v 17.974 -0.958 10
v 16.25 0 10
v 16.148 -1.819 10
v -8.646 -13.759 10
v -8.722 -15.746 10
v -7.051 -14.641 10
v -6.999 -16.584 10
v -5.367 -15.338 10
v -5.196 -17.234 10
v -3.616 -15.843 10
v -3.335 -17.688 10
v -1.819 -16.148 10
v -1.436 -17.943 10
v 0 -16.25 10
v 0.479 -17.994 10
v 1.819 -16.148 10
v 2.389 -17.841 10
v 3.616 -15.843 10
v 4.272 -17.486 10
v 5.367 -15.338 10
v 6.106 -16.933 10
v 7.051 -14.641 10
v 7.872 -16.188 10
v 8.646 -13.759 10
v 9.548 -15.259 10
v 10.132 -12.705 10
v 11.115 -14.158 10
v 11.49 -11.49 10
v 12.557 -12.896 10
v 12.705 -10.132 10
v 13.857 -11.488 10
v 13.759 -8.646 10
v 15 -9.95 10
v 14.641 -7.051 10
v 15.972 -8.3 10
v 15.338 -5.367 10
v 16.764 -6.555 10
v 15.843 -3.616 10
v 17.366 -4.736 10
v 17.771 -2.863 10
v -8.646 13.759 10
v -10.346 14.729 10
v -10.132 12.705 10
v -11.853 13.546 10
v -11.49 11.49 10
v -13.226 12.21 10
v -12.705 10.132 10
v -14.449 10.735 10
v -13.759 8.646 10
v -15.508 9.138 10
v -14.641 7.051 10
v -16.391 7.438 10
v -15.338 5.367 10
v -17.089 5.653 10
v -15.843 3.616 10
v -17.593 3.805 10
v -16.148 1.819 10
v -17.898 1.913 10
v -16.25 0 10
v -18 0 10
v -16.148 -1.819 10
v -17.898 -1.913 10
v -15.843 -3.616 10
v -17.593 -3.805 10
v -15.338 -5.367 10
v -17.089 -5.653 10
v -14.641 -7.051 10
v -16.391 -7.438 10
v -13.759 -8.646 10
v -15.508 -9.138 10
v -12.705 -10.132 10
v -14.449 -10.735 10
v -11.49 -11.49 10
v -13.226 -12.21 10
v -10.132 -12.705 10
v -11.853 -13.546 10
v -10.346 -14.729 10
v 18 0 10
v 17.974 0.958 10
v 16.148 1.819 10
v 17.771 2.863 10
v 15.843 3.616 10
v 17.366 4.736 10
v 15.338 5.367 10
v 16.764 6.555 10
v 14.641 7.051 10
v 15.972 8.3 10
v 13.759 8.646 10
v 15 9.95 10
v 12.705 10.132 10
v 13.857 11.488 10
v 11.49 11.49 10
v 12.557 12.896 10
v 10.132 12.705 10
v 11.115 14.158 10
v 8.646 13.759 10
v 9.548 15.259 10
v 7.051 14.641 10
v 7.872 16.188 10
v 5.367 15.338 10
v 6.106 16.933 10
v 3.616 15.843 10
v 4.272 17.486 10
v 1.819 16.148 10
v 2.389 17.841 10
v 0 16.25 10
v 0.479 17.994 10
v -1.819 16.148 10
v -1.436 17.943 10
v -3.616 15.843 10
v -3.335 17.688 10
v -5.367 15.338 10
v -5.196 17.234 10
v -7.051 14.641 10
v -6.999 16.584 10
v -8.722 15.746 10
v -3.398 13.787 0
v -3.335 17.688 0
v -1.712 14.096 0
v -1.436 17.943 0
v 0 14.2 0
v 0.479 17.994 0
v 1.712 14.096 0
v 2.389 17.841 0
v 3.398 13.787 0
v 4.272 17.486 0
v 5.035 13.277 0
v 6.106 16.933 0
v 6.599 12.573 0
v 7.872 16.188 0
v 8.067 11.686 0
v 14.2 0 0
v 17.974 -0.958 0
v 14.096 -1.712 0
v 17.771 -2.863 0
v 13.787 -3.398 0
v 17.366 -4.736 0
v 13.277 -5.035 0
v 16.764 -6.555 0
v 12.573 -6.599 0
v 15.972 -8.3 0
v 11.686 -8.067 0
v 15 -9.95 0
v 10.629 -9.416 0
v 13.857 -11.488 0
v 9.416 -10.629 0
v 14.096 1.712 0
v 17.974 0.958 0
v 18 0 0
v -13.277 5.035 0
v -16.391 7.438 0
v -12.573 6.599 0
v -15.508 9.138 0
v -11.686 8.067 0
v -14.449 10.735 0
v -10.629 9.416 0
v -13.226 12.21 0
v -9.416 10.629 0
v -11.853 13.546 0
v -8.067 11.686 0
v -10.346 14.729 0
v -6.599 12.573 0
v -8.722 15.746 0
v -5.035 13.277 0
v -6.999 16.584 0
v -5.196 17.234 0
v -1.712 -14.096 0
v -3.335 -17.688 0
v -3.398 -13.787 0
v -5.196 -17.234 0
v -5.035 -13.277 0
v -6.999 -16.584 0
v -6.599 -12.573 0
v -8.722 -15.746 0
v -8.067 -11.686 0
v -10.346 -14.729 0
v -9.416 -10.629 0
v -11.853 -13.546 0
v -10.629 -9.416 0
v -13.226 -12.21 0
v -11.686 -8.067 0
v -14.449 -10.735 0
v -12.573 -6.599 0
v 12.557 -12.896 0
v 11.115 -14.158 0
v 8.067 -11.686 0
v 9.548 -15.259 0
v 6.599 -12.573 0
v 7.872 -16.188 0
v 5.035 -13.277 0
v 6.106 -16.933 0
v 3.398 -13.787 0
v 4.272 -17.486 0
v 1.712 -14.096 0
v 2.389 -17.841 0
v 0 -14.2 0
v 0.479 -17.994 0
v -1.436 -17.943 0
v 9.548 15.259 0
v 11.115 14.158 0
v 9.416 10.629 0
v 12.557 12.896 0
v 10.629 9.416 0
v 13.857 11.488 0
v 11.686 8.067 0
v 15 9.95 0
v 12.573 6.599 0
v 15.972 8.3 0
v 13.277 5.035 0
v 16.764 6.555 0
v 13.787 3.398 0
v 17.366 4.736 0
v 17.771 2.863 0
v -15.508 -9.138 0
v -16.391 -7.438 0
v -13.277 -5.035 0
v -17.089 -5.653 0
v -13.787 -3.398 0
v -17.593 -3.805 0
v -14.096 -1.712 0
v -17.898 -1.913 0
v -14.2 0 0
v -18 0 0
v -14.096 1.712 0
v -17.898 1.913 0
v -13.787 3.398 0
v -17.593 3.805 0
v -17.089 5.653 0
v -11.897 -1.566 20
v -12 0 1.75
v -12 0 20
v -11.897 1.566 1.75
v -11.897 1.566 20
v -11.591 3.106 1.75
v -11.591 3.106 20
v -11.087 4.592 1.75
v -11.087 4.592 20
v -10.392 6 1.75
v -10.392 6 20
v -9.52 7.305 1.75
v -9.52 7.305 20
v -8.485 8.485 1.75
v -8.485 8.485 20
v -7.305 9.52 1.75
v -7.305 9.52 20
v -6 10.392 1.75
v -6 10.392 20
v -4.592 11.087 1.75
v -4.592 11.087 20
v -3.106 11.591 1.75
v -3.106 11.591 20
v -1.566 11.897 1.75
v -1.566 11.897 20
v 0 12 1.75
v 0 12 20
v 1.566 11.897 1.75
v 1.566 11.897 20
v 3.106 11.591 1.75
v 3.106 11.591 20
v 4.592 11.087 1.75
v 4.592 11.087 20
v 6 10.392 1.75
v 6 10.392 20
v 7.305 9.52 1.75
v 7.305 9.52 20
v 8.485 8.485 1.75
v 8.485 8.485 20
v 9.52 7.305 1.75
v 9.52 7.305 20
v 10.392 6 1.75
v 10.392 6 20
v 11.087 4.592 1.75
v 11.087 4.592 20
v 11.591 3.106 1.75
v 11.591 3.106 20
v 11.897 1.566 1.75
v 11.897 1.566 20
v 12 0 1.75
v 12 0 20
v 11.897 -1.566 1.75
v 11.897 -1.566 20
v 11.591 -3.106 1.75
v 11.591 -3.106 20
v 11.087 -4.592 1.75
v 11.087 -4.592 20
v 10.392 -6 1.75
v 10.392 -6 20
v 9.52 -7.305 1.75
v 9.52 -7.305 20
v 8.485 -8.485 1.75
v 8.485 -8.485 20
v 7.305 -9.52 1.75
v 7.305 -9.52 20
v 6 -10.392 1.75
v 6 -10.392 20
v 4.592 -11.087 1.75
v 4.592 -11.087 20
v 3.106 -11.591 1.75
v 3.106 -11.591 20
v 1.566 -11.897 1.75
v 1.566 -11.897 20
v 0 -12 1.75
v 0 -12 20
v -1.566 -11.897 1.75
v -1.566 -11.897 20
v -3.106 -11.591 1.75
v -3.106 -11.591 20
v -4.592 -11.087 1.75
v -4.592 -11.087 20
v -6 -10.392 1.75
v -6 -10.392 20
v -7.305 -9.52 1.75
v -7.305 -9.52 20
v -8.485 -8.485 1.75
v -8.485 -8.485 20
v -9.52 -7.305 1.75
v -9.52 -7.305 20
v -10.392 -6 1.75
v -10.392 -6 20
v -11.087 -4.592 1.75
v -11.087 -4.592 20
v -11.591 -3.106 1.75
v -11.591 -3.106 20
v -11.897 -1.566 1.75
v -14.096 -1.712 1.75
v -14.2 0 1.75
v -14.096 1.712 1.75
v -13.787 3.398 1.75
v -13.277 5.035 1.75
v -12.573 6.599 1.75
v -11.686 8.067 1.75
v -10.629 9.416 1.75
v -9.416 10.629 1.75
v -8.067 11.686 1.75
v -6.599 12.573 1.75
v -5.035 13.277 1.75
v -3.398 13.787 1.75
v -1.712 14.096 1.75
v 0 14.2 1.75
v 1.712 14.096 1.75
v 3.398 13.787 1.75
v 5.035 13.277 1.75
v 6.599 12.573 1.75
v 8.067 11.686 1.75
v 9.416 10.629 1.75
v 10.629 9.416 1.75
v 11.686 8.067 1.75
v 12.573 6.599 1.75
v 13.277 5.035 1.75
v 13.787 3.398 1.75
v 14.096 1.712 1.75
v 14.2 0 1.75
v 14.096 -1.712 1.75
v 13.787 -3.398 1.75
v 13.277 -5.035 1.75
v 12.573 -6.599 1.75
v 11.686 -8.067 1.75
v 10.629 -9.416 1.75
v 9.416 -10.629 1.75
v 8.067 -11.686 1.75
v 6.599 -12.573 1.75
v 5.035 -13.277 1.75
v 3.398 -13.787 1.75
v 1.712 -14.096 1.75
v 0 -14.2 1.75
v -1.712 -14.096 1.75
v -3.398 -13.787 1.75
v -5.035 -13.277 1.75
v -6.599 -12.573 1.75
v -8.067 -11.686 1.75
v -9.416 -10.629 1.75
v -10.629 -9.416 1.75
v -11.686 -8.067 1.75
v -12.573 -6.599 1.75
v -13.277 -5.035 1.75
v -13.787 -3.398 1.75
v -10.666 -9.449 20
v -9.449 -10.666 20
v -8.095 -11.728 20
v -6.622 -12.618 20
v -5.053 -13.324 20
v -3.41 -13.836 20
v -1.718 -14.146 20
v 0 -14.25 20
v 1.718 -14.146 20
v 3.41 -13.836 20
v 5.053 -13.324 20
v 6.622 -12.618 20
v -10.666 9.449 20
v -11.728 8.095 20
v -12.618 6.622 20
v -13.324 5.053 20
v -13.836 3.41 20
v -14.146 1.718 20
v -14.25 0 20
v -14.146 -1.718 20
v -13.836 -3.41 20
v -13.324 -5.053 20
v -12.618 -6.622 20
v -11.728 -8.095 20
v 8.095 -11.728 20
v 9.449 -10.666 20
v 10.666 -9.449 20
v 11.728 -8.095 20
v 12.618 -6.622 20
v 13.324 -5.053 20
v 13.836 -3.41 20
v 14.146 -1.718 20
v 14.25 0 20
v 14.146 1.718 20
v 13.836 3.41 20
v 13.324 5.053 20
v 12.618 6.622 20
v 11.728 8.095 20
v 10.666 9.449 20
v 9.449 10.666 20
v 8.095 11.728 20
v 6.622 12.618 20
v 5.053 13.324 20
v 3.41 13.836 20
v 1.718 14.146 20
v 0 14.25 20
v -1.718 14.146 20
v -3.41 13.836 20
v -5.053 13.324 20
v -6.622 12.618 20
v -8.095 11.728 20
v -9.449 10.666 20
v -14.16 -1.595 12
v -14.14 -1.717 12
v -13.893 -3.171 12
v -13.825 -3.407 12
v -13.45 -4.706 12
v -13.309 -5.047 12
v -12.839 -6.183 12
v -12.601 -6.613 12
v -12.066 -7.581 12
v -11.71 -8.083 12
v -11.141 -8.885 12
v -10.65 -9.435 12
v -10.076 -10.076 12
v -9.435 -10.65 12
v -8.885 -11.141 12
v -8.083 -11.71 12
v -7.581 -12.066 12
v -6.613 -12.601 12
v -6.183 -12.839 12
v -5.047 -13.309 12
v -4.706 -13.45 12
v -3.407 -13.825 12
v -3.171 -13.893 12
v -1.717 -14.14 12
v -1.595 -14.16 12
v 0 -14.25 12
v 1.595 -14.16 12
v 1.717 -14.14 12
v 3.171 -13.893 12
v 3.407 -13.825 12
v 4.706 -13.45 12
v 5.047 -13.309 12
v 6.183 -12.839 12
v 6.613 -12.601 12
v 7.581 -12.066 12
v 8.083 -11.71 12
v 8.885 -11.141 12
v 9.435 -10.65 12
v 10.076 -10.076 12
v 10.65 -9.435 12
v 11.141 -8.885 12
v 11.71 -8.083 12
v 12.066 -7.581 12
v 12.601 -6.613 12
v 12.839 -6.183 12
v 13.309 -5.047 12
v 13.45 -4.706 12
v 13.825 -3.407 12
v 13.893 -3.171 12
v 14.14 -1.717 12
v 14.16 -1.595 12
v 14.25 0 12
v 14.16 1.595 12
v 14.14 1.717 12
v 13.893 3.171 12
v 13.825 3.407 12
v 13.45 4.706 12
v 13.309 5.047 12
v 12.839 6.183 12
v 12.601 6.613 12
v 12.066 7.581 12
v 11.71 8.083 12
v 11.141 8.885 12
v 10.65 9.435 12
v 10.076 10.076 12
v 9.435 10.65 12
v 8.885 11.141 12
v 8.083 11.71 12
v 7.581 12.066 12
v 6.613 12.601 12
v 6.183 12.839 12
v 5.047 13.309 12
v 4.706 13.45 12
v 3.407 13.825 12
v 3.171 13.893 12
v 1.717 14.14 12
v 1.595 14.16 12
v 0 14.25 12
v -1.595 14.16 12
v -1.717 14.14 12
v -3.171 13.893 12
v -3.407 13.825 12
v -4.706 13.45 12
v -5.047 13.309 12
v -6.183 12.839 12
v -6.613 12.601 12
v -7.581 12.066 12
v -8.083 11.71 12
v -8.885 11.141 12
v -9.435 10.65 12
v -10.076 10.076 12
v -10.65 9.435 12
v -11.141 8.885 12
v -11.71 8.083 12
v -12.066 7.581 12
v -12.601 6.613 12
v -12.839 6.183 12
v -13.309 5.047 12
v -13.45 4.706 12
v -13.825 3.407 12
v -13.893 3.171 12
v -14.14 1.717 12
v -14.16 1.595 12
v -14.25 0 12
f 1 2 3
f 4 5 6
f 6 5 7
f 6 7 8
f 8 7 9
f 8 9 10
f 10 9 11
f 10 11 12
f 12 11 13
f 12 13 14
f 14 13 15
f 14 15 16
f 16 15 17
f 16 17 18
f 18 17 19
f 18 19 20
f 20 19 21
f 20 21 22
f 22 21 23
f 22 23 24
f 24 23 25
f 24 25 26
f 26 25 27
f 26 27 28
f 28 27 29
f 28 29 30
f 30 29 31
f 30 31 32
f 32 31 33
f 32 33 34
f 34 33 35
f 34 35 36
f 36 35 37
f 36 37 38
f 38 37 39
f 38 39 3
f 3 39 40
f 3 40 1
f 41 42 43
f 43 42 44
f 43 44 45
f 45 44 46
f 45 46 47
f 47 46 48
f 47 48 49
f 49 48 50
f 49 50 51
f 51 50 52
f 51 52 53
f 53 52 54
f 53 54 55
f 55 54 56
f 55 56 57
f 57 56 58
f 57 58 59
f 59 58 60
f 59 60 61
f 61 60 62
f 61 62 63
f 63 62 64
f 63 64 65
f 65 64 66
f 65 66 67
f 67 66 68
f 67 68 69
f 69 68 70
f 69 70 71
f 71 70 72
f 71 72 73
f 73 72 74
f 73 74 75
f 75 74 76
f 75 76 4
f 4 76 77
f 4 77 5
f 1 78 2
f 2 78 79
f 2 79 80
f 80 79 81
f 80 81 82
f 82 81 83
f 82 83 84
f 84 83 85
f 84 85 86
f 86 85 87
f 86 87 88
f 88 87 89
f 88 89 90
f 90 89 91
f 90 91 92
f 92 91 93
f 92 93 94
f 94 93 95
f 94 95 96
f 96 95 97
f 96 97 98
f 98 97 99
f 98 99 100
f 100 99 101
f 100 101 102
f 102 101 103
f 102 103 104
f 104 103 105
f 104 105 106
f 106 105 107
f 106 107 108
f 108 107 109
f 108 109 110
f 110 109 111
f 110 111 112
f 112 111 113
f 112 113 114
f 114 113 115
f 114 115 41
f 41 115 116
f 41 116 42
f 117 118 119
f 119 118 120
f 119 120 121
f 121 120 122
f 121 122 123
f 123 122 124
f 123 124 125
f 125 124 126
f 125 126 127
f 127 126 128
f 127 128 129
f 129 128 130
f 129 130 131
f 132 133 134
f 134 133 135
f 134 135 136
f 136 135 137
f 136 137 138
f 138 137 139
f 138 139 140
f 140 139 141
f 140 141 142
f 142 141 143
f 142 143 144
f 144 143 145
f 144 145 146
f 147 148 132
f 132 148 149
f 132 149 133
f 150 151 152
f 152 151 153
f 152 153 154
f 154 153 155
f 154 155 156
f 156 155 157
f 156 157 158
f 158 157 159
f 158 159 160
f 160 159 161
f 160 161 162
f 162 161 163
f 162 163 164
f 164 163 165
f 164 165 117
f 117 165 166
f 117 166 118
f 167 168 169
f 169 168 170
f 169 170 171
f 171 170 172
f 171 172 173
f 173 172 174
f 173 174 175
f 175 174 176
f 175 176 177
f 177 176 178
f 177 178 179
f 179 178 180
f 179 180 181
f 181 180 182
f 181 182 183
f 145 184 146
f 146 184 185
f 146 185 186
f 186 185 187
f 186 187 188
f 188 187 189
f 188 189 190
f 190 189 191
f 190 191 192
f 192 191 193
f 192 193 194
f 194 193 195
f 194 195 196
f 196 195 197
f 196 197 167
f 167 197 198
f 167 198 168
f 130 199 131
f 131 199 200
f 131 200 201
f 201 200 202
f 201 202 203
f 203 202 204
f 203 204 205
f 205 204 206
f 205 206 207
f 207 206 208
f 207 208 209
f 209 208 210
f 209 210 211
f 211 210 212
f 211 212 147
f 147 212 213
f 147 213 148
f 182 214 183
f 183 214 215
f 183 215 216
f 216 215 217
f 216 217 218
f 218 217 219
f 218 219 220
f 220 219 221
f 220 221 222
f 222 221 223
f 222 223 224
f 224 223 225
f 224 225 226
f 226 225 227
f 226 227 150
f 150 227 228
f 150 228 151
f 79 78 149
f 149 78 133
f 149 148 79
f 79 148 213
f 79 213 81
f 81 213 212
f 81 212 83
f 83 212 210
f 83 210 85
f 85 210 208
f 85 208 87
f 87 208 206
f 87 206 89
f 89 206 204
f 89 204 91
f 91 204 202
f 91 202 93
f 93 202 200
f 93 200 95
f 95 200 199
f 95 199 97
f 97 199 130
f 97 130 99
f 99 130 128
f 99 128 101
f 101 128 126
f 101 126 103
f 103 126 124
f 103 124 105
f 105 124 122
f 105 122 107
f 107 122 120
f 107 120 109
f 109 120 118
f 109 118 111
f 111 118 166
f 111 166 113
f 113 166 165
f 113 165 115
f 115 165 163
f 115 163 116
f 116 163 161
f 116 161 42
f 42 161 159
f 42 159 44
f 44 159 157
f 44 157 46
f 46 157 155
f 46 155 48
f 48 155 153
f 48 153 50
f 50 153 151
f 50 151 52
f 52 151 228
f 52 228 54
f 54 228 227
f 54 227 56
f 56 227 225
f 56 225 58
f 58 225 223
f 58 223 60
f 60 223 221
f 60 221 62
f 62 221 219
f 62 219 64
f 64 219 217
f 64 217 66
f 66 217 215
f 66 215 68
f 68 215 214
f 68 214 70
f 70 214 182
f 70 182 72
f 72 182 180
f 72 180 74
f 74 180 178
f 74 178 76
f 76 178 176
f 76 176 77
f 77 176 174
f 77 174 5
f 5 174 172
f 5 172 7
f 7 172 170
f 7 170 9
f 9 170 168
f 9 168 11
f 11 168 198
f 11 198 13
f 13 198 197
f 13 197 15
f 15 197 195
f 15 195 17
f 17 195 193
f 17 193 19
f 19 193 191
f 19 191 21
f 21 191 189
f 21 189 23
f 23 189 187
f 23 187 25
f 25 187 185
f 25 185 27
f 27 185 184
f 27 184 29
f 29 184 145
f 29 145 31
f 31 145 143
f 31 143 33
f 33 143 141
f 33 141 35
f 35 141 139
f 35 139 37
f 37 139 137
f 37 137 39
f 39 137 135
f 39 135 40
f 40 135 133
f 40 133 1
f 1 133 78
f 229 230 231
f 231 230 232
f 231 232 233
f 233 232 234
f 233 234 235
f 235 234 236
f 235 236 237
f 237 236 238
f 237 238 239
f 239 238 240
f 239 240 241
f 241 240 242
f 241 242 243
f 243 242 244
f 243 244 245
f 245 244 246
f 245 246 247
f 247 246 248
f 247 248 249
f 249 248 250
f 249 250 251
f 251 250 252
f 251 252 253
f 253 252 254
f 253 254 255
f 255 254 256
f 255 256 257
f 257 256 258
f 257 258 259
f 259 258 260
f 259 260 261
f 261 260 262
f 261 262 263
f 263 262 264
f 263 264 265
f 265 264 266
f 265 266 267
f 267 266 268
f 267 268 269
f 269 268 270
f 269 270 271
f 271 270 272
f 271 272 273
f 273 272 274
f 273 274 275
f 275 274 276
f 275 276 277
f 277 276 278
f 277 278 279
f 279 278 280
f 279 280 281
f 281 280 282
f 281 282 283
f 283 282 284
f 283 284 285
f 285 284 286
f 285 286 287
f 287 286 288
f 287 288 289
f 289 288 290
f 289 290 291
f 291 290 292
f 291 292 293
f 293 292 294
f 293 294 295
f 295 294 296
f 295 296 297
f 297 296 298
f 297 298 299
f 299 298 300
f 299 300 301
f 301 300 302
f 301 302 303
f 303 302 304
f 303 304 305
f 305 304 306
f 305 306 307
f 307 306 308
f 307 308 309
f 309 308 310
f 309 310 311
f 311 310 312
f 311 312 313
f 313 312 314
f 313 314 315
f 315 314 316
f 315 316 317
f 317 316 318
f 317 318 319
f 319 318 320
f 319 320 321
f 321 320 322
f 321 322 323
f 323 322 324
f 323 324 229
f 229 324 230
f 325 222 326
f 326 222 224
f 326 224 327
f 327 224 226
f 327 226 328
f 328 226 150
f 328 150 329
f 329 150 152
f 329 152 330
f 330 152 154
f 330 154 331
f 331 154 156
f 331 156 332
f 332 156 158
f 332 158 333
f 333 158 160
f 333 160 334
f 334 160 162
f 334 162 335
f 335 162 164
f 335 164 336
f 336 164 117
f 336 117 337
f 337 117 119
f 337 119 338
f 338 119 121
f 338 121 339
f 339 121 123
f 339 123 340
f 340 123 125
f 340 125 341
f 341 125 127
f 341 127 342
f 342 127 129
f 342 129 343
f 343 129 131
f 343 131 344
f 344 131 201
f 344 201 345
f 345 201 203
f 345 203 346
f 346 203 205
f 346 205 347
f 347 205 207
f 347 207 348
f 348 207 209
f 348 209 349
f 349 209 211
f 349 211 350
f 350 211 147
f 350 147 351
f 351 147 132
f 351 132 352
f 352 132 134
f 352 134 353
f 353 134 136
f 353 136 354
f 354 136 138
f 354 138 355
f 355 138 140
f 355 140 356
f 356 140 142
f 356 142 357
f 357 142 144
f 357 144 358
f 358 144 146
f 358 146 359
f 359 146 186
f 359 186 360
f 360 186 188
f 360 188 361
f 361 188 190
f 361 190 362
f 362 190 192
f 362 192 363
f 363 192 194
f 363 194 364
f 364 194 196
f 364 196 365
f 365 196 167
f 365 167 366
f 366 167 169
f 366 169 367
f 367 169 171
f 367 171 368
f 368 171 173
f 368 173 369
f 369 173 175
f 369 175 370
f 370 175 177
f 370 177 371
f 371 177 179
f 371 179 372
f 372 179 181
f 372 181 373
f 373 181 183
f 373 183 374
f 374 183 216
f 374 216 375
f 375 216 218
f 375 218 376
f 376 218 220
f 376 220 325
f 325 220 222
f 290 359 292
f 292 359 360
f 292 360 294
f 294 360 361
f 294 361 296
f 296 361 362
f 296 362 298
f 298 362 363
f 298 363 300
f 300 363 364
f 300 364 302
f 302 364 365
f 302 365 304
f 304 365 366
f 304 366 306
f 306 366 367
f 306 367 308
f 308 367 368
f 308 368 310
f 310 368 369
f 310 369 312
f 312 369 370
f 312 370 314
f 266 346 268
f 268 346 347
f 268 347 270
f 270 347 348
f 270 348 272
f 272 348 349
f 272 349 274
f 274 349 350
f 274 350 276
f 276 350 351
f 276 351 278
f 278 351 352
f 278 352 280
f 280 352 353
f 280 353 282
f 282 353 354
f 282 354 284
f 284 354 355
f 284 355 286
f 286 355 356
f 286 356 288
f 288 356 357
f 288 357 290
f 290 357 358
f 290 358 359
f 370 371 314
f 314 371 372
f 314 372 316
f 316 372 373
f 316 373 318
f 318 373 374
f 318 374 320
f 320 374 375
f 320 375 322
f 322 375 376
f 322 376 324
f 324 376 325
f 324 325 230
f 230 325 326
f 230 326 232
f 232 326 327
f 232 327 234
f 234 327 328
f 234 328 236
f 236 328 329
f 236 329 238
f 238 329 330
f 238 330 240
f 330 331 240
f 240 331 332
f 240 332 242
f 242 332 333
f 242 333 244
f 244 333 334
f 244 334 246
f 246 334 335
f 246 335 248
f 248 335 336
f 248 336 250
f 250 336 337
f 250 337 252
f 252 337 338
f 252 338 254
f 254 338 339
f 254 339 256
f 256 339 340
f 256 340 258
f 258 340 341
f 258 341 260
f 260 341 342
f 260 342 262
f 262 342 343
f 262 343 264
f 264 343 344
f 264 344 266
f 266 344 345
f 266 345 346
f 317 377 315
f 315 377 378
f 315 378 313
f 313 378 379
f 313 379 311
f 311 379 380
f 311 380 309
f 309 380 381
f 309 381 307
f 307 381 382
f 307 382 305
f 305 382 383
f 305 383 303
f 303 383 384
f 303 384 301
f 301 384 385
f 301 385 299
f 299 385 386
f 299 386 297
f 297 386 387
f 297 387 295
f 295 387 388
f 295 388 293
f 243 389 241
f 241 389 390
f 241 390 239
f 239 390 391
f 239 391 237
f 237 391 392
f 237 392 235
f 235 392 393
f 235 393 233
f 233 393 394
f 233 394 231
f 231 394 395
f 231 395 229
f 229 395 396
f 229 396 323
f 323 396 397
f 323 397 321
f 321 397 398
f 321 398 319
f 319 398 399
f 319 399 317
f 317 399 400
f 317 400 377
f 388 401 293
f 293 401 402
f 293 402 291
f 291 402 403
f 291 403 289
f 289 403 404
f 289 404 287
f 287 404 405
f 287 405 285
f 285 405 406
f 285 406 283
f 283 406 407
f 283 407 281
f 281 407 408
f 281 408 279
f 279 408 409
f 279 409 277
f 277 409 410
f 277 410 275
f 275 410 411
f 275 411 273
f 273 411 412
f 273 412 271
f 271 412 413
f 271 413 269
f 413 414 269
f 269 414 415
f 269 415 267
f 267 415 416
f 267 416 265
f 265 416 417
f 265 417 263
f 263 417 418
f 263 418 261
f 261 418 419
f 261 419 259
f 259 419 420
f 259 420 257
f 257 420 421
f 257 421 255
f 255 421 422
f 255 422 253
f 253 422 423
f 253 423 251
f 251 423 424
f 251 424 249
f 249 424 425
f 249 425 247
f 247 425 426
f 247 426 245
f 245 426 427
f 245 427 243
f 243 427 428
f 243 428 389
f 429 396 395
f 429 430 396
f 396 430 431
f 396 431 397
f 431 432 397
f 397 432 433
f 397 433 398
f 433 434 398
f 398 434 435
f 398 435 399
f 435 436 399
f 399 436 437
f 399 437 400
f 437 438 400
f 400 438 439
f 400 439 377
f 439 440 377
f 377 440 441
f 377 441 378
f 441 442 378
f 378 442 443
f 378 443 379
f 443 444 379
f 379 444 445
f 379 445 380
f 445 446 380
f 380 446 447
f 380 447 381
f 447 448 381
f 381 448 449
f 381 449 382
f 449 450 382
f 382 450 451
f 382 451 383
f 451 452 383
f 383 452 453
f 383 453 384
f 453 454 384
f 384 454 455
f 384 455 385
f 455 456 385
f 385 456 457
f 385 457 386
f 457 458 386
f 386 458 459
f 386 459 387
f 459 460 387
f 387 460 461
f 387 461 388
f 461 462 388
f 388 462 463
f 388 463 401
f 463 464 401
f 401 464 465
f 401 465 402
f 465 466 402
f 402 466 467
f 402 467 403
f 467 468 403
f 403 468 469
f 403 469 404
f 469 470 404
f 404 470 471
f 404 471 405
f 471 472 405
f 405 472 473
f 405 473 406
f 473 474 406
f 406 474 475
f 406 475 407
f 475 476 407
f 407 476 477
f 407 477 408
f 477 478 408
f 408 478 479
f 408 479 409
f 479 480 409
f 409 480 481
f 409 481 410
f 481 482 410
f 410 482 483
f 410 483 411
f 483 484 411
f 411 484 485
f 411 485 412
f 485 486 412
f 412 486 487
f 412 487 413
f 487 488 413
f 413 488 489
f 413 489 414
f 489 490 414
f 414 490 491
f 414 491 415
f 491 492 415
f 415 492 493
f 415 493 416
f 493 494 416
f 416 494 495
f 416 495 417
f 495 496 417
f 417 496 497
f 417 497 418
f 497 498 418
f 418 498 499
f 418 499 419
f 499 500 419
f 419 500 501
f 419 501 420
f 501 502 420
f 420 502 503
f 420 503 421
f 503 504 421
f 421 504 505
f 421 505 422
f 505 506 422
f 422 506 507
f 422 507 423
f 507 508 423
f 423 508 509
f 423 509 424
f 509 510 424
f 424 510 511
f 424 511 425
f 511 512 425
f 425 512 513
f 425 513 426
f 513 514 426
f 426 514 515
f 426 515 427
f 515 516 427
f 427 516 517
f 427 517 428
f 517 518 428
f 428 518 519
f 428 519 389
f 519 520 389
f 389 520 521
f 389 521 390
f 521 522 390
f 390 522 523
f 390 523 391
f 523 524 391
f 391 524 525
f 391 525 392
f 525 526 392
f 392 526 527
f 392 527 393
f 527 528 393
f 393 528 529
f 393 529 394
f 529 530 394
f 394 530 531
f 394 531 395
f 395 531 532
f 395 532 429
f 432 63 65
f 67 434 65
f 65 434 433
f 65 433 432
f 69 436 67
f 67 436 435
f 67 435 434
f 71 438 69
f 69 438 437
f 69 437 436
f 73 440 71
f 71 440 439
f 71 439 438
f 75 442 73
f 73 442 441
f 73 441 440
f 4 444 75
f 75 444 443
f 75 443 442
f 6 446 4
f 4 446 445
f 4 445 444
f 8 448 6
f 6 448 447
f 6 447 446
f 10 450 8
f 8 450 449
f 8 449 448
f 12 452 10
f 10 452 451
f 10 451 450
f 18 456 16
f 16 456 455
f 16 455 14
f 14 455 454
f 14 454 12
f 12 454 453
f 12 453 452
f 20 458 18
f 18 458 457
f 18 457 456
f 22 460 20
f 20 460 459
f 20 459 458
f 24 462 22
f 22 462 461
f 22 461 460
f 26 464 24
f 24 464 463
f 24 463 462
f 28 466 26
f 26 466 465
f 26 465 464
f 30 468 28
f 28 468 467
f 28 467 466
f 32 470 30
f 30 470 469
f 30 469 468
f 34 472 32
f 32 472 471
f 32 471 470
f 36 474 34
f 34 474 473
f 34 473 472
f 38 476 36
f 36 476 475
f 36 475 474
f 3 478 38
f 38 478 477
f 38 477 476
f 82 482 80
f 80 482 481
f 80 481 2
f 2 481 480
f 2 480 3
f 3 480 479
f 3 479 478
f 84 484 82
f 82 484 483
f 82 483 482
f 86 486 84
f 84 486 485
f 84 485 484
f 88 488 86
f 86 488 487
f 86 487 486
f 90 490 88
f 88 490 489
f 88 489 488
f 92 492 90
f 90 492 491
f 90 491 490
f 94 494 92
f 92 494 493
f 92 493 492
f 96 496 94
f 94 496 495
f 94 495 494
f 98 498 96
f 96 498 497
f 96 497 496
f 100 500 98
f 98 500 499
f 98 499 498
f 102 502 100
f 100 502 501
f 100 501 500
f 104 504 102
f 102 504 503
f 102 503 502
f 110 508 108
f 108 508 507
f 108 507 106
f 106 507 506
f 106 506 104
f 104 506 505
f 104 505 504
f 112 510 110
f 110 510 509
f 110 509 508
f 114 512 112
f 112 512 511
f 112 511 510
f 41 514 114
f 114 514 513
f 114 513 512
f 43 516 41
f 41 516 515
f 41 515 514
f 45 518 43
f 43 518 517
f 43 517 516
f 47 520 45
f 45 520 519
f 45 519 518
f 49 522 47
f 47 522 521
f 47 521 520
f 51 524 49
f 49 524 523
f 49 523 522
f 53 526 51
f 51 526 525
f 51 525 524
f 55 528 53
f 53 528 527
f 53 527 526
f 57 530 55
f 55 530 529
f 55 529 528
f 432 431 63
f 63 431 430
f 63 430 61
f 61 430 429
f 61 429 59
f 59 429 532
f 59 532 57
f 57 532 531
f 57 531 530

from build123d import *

# Parameters (mm, degrees)
SKETCH1_R           = 18
SKETCH1_R_2         = 12
BOSS_EXTRUDE1_DEPTH = 10
SKETCH3_R           = 14.2
CUT_EXTRUDE1_DEPTH  = 1.75
SKETCH5_R           = 14.25
SKETCH5_R_2         = 12
BOSS_EXTRUDE2_DEPTH = 10
CHAMFER1_SIZE       = 2


with BuildPart() as part:
    # Sketch1 → Boss-Extrude1 (new body)
    with BuildSketch(Plane.XY):
        Circle(SKETCH1_R)
        Circle(SKETCH1_R_2, mode=Mode.SUBTRACT)
    extrude(amount=BOSS_EXTRUDE1_DEPTH)

    # Sketch3 → Cut-Extrude1 (cut)
    with BuildSketch(Plane.XY):
        Circle(SKETCH3_R)
    extrude(amount=CUT_EXTRUDE1_DEPTH, mode=Mode.SUBTRACT)

    # Sketch5 → Boss-Extrude2 (add)
    with BuildSketch(Plane.XY.offset(10)):
        Circle(SKETCH5_R)
        Circle(SKETCH5_R_2, mode=Mode.SUBTRACT)
    extrude(amount=BOSS_EXTRUDE2_DEPTH)

    # Chamfer1
    chamfer1_edges = [part.edges().sort_by_distance(p)[0] for p in [
        (-14.25, 0, 10),
    ]]
    chamfer(chamfer1_edges, length=CHAMFER1_SIZE)


solid = part.part
